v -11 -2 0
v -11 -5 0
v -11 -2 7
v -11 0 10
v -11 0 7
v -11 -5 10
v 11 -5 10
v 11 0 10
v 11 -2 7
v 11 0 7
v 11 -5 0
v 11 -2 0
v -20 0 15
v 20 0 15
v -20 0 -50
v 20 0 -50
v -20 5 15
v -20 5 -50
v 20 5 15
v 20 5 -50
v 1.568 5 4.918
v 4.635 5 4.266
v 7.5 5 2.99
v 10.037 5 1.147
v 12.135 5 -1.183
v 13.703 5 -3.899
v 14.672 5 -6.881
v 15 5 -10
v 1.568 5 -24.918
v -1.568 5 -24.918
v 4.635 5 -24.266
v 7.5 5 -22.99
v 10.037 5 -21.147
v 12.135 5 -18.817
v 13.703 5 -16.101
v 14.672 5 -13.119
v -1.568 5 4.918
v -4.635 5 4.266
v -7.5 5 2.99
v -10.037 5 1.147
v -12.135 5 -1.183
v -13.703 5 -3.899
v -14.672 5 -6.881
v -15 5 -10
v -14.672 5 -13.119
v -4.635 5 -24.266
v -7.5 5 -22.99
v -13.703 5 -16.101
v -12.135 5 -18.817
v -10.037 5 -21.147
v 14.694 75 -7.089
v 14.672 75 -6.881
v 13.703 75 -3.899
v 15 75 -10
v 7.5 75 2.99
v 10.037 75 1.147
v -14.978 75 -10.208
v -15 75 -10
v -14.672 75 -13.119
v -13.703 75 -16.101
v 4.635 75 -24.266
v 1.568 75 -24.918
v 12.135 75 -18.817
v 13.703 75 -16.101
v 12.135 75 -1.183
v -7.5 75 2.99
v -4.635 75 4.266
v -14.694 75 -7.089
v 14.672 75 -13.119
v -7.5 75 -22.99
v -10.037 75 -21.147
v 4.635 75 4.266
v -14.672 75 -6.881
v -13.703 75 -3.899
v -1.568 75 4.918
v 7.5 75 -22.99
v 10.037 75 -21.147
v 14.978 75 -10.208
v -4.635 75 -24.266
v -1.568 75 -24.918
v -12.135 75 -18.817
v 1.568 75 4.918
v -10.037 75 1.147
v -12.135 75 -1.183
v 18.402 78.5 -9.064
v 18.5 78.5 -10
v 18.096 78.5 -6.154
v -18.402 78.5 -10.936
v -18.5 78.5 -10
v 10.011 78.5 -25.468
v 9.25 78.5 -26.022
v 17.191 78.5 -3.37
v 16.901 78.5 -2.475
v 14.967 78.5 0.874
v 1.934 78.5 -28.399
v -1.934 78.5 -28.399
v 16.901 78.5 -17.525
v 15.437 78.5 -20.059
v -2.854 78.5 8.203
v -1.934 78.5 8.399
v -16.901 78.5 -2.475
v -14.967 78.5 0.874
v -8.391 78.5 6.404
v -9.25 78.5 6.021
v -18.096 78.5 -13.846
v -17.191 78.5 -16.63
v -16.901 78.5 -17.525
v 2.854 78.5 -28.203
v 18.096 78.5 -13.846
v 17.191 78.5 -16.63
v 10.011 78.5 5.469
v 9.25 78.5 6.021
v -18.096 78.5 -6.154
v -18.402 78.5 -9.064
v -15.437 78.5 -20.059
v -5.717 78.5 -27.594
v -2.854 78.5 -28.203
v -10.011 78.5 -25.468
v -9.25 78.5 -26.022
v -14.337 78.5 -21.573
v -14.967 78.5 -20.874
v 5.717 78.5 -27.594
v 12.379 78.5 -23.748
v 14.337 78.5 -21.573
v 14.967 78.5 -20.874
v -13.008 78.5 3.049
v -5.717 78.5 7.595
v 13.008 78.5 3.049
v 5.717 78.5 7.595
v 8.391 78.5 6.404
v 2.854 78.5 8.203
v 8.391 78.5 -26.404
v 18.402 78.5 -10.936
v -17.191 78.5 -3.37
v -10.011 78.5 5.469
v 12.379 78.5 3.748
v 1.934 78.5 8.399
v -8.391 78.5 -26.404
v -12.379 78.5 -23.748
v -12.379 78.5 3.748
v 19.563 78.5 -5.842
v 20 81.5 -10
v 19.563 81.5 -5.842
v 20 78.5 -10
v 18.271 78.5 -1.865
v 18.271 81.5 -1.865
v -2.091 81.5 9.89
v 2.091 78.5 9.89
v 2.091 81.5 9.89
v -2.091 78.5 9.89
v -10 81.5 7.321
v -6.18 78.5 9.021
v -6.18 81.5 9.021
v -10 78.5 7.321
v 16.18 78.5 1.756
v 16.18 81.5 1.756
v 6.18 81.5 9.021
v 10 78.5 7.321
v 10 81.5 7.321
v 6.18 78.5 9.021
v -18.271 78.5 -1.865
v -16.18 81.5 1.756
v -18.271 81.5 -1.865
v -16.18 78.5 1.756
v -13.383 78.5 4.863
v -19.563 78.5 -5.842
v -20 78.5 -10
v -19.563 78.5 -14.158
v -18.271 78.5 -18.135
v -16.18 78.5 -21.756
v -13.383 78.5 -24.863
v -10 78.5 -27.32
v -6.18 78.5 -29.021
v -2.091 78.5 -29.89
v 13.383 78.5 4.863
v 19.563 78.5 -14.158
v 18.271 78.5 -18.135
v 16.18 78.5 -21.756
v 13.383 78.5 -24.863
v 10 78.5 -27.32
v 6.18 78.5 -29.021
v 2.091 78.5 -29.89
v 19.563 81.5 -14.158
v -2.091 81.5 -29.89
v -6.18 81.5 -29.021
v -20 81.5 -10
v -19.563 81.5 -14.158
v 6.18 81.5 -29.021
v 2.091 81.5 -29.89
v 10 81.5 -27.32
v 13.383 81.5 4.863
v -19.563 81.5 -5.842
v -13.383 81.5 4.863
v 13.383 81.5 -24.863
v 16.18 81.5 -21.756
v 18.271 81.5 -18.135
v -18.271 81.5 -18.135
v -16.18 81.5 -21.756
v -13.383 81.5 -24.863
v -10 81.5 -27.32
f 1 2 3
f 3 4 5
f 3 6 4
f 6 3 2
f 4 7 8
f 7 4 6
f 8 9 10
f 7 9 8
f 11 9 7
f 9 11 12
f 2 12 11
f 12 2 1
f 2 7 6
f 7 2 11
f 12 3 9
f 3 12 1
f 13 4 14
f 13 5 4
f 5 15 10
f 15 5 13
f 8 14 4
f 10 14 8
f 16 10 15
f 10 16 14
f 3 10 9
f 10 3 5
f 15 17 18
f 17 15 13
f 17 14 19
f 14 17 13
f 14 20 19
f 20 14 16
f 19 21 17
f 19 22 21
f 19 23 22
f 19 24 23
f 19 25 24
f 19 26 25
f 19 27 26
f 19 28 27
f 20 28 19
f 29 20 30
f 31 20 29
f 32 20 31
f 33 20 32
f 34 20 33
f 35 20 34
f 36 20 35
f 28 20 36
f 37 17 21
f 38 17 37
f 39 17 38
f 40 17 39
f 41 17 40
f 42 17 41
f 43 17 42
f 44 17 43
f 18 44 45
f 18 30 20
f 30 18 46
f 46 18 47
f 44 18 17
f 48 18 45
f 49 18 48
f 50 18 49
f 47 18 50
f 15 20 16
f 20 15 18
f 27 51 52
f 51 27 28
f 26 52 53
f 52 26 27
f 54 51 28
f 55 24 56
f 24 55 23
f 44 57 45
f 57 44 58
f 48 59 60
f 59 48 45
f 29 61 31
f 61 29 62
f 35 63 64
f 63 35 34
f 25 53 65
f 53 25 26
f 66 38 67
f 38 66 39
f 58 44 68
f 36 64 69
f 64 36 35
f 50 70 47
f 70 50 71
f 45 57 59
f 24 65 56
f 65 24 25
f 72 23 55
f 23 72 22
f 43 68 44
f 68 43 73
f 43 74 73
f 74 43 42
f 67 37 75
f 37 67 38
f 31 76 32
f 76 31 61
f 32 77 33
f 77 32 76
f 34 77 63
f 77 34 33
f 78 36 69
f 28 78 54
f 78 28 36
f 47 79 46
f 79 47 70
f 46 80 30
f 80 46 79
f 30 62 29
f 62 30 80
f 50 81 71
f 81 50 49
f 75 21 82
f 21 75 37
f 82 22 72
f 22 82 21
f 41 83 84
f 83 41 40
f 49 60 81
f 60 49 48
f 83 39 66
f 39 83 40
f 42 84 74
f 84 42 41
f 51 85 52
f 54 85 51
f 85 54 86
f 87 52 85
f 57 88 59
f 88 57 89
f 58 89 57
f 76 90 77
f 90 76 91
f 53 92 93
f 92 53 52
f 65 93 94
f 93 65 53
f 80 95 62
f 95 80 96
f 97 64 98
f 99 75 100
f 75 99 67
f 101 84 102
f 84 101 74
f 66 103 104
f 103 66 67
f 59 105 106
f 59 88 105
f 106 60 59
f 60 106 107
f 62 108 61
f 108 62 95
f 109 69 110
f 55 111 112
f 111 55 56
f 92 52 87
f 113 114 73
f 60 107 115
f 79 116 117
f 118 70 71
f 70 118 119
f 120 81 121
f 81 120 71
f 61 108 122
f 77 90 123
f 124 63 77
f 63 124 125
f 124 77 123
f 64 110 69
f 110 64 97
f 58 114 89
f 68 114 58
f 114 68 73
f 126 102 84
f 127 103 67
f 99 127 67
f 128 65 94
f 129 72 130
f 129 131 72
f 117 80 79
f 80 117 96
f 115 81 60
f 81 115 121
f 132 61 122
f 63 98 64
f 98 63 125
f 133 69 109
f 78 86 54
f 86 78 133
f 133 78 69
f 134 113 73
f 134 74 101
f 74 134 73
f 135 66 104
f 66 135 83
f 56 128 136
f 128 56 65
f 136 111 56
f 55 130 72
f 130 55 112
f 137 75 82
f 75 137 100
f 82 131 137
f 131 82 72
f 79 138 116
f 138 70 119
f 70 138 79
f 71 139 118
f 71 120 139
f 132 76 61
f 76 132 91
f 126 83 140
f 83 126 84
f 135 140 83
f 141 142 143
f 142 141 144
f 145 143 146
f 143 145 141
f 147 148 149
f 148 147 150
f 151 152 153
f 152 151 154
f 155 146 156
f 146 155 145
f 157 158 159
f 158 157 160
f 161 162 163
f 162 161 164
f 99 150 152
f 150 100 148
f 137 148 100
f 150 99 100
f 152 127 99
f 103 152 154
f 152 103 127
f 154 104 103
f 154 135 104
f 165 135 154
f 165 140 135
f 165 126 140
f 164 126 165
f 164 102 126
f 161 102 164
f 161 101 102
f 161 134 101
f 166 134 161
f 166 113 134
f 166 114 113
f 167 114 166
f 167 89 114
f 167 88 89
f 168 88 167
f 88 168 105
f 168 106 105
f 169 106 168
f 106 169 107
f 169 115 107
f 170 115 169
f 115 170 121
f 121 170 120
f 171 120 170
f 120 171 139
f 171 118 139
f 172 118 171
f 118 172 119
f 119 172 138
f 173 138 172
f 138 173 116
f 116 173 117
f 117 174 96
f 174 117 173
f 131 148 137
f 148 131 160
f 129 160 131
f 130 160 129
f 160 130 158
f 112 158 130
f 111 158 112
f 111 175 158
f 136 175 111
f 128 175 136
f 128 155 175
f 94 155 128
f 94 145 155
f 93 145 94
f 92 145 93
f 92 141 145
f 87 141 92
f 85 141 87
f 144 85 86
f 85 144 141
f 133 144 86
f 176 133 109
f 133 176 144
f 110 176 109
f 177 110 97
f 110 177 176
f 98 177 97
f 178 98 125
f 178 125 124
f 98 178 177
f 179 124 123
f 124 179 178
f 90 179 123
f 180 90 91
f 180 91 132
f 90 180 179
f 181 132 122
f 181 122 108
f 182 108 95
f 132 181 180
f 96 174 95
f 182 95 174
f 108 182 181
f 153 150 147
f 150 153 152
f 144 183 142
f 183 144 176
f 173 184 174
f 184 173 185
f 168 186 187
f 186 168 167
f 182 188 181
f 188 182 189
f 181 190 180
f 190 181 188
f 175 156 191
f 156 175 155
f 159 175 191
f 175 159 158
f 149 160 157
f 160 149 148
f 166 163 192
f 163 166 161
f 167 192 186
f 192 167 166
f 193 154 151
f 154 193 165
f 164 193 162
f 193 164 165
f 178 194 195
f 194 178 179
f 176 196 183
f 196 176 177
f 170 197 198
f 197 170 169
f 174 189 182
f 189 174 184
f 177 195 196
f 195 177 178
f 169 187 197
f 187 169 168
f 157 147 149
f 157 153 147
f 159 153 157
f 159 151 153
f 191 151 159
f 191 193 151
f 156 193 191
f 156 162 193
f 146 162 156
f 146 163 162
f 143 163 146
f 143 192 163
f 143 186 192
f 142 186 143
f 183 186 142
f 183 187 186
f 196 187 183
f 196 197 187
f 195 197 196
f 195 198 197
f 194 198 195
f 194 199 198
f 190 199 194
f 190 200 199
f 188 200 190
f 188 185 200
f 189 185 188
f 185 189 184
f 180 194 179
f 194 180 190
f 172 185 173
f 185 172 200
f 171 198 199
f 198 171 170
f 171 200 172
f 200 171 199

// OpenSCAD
// UP-grade is a customisable roll holder for the UP mini 3D printer
// so this small printer can carry big filament rolls
// https://www.up3d.com/?r=mini

// Written for OpenScad by Bruno Herfst 2016
// http://www.openscad.org

// Roll Spec
rollWidth = 70;

// Holder spec
holderDepth        = 10;
holderLever        = 15;
bevelWidth         = 5;
hLipTickness       = 3;
hDiameter          = 30;
backWallThickness  = 5;
frontWallThickness = 3;

// Printer Spec
pHoleWidth = 22; // 24 Actual
pHoleHeiht = 10; // 12 Actual
pWall      = 2;  //  1 Actual

// Short cuts
hDepth   = holderDepth/2;
rWidth   = rollWidth + bevelWidth;
// Backwall
bwWidth  = hDiameter + holderDepth;
bwHeight = hDiameter + (holderDepth*2) + holderLever;

module prism(l, w, h){
    polyhedron(
        points=[[0,0,0], [l,0,0], [l,w,0], [0,w,0], [0,w,h], [l,w,h]],
        faces=[[0,1,2,3],[5,4,3,2],[0,4,5,1],[0,3,4],[5,2,1]]
    );
}

union() { 
    // Create lip
    translate([-(pHoleWidth/2),-(pWall+hLipTickness),0]) {
        cube([pHoleWidth,hLipTickness,pHoleHeiht]);
        translate([0,0,pHoleHeiht-hLipTickness]) {
            cube([pHoleWidth,hLipTickness+pWall,hLipTickness]);
        }
    }

    // Create backWall
    translate([-bwWidth/2,0,-(bwHeight-pHoleHeiht)+hDepth]){
        cube([bwWidth,backWallThickness,bwHeight]);
    }

    // Create holder
    translate([0,rWidth/2+backWallThickness,pHoleHeiht-hDepth-(hDiameter/2)]){
        rotate([90,0,0])
        cylinder(  rWidth, d=hDiameter, center=true);
    }

    // Create holder finish
    translate([0,rWidth+backWallThickness+(bevelWidth/2)-bevelWidth,pHoleHeiht-hDepth-(hDiameter/2)]){
        rotate([90,0,0])
        cylinder(  bevelWidth, d1=hDiameter+holderDepth, d2=hDiameter, center=true);
    }
    translate([0,rWidth+backWallThickness,pHoleHeiht-hDepth-(hDiameter/2)]){
        rotate([90,0,0])
        cylinder(  frontWallThickness, d=hDiameter+holderDepth, center=true);
    }
}
